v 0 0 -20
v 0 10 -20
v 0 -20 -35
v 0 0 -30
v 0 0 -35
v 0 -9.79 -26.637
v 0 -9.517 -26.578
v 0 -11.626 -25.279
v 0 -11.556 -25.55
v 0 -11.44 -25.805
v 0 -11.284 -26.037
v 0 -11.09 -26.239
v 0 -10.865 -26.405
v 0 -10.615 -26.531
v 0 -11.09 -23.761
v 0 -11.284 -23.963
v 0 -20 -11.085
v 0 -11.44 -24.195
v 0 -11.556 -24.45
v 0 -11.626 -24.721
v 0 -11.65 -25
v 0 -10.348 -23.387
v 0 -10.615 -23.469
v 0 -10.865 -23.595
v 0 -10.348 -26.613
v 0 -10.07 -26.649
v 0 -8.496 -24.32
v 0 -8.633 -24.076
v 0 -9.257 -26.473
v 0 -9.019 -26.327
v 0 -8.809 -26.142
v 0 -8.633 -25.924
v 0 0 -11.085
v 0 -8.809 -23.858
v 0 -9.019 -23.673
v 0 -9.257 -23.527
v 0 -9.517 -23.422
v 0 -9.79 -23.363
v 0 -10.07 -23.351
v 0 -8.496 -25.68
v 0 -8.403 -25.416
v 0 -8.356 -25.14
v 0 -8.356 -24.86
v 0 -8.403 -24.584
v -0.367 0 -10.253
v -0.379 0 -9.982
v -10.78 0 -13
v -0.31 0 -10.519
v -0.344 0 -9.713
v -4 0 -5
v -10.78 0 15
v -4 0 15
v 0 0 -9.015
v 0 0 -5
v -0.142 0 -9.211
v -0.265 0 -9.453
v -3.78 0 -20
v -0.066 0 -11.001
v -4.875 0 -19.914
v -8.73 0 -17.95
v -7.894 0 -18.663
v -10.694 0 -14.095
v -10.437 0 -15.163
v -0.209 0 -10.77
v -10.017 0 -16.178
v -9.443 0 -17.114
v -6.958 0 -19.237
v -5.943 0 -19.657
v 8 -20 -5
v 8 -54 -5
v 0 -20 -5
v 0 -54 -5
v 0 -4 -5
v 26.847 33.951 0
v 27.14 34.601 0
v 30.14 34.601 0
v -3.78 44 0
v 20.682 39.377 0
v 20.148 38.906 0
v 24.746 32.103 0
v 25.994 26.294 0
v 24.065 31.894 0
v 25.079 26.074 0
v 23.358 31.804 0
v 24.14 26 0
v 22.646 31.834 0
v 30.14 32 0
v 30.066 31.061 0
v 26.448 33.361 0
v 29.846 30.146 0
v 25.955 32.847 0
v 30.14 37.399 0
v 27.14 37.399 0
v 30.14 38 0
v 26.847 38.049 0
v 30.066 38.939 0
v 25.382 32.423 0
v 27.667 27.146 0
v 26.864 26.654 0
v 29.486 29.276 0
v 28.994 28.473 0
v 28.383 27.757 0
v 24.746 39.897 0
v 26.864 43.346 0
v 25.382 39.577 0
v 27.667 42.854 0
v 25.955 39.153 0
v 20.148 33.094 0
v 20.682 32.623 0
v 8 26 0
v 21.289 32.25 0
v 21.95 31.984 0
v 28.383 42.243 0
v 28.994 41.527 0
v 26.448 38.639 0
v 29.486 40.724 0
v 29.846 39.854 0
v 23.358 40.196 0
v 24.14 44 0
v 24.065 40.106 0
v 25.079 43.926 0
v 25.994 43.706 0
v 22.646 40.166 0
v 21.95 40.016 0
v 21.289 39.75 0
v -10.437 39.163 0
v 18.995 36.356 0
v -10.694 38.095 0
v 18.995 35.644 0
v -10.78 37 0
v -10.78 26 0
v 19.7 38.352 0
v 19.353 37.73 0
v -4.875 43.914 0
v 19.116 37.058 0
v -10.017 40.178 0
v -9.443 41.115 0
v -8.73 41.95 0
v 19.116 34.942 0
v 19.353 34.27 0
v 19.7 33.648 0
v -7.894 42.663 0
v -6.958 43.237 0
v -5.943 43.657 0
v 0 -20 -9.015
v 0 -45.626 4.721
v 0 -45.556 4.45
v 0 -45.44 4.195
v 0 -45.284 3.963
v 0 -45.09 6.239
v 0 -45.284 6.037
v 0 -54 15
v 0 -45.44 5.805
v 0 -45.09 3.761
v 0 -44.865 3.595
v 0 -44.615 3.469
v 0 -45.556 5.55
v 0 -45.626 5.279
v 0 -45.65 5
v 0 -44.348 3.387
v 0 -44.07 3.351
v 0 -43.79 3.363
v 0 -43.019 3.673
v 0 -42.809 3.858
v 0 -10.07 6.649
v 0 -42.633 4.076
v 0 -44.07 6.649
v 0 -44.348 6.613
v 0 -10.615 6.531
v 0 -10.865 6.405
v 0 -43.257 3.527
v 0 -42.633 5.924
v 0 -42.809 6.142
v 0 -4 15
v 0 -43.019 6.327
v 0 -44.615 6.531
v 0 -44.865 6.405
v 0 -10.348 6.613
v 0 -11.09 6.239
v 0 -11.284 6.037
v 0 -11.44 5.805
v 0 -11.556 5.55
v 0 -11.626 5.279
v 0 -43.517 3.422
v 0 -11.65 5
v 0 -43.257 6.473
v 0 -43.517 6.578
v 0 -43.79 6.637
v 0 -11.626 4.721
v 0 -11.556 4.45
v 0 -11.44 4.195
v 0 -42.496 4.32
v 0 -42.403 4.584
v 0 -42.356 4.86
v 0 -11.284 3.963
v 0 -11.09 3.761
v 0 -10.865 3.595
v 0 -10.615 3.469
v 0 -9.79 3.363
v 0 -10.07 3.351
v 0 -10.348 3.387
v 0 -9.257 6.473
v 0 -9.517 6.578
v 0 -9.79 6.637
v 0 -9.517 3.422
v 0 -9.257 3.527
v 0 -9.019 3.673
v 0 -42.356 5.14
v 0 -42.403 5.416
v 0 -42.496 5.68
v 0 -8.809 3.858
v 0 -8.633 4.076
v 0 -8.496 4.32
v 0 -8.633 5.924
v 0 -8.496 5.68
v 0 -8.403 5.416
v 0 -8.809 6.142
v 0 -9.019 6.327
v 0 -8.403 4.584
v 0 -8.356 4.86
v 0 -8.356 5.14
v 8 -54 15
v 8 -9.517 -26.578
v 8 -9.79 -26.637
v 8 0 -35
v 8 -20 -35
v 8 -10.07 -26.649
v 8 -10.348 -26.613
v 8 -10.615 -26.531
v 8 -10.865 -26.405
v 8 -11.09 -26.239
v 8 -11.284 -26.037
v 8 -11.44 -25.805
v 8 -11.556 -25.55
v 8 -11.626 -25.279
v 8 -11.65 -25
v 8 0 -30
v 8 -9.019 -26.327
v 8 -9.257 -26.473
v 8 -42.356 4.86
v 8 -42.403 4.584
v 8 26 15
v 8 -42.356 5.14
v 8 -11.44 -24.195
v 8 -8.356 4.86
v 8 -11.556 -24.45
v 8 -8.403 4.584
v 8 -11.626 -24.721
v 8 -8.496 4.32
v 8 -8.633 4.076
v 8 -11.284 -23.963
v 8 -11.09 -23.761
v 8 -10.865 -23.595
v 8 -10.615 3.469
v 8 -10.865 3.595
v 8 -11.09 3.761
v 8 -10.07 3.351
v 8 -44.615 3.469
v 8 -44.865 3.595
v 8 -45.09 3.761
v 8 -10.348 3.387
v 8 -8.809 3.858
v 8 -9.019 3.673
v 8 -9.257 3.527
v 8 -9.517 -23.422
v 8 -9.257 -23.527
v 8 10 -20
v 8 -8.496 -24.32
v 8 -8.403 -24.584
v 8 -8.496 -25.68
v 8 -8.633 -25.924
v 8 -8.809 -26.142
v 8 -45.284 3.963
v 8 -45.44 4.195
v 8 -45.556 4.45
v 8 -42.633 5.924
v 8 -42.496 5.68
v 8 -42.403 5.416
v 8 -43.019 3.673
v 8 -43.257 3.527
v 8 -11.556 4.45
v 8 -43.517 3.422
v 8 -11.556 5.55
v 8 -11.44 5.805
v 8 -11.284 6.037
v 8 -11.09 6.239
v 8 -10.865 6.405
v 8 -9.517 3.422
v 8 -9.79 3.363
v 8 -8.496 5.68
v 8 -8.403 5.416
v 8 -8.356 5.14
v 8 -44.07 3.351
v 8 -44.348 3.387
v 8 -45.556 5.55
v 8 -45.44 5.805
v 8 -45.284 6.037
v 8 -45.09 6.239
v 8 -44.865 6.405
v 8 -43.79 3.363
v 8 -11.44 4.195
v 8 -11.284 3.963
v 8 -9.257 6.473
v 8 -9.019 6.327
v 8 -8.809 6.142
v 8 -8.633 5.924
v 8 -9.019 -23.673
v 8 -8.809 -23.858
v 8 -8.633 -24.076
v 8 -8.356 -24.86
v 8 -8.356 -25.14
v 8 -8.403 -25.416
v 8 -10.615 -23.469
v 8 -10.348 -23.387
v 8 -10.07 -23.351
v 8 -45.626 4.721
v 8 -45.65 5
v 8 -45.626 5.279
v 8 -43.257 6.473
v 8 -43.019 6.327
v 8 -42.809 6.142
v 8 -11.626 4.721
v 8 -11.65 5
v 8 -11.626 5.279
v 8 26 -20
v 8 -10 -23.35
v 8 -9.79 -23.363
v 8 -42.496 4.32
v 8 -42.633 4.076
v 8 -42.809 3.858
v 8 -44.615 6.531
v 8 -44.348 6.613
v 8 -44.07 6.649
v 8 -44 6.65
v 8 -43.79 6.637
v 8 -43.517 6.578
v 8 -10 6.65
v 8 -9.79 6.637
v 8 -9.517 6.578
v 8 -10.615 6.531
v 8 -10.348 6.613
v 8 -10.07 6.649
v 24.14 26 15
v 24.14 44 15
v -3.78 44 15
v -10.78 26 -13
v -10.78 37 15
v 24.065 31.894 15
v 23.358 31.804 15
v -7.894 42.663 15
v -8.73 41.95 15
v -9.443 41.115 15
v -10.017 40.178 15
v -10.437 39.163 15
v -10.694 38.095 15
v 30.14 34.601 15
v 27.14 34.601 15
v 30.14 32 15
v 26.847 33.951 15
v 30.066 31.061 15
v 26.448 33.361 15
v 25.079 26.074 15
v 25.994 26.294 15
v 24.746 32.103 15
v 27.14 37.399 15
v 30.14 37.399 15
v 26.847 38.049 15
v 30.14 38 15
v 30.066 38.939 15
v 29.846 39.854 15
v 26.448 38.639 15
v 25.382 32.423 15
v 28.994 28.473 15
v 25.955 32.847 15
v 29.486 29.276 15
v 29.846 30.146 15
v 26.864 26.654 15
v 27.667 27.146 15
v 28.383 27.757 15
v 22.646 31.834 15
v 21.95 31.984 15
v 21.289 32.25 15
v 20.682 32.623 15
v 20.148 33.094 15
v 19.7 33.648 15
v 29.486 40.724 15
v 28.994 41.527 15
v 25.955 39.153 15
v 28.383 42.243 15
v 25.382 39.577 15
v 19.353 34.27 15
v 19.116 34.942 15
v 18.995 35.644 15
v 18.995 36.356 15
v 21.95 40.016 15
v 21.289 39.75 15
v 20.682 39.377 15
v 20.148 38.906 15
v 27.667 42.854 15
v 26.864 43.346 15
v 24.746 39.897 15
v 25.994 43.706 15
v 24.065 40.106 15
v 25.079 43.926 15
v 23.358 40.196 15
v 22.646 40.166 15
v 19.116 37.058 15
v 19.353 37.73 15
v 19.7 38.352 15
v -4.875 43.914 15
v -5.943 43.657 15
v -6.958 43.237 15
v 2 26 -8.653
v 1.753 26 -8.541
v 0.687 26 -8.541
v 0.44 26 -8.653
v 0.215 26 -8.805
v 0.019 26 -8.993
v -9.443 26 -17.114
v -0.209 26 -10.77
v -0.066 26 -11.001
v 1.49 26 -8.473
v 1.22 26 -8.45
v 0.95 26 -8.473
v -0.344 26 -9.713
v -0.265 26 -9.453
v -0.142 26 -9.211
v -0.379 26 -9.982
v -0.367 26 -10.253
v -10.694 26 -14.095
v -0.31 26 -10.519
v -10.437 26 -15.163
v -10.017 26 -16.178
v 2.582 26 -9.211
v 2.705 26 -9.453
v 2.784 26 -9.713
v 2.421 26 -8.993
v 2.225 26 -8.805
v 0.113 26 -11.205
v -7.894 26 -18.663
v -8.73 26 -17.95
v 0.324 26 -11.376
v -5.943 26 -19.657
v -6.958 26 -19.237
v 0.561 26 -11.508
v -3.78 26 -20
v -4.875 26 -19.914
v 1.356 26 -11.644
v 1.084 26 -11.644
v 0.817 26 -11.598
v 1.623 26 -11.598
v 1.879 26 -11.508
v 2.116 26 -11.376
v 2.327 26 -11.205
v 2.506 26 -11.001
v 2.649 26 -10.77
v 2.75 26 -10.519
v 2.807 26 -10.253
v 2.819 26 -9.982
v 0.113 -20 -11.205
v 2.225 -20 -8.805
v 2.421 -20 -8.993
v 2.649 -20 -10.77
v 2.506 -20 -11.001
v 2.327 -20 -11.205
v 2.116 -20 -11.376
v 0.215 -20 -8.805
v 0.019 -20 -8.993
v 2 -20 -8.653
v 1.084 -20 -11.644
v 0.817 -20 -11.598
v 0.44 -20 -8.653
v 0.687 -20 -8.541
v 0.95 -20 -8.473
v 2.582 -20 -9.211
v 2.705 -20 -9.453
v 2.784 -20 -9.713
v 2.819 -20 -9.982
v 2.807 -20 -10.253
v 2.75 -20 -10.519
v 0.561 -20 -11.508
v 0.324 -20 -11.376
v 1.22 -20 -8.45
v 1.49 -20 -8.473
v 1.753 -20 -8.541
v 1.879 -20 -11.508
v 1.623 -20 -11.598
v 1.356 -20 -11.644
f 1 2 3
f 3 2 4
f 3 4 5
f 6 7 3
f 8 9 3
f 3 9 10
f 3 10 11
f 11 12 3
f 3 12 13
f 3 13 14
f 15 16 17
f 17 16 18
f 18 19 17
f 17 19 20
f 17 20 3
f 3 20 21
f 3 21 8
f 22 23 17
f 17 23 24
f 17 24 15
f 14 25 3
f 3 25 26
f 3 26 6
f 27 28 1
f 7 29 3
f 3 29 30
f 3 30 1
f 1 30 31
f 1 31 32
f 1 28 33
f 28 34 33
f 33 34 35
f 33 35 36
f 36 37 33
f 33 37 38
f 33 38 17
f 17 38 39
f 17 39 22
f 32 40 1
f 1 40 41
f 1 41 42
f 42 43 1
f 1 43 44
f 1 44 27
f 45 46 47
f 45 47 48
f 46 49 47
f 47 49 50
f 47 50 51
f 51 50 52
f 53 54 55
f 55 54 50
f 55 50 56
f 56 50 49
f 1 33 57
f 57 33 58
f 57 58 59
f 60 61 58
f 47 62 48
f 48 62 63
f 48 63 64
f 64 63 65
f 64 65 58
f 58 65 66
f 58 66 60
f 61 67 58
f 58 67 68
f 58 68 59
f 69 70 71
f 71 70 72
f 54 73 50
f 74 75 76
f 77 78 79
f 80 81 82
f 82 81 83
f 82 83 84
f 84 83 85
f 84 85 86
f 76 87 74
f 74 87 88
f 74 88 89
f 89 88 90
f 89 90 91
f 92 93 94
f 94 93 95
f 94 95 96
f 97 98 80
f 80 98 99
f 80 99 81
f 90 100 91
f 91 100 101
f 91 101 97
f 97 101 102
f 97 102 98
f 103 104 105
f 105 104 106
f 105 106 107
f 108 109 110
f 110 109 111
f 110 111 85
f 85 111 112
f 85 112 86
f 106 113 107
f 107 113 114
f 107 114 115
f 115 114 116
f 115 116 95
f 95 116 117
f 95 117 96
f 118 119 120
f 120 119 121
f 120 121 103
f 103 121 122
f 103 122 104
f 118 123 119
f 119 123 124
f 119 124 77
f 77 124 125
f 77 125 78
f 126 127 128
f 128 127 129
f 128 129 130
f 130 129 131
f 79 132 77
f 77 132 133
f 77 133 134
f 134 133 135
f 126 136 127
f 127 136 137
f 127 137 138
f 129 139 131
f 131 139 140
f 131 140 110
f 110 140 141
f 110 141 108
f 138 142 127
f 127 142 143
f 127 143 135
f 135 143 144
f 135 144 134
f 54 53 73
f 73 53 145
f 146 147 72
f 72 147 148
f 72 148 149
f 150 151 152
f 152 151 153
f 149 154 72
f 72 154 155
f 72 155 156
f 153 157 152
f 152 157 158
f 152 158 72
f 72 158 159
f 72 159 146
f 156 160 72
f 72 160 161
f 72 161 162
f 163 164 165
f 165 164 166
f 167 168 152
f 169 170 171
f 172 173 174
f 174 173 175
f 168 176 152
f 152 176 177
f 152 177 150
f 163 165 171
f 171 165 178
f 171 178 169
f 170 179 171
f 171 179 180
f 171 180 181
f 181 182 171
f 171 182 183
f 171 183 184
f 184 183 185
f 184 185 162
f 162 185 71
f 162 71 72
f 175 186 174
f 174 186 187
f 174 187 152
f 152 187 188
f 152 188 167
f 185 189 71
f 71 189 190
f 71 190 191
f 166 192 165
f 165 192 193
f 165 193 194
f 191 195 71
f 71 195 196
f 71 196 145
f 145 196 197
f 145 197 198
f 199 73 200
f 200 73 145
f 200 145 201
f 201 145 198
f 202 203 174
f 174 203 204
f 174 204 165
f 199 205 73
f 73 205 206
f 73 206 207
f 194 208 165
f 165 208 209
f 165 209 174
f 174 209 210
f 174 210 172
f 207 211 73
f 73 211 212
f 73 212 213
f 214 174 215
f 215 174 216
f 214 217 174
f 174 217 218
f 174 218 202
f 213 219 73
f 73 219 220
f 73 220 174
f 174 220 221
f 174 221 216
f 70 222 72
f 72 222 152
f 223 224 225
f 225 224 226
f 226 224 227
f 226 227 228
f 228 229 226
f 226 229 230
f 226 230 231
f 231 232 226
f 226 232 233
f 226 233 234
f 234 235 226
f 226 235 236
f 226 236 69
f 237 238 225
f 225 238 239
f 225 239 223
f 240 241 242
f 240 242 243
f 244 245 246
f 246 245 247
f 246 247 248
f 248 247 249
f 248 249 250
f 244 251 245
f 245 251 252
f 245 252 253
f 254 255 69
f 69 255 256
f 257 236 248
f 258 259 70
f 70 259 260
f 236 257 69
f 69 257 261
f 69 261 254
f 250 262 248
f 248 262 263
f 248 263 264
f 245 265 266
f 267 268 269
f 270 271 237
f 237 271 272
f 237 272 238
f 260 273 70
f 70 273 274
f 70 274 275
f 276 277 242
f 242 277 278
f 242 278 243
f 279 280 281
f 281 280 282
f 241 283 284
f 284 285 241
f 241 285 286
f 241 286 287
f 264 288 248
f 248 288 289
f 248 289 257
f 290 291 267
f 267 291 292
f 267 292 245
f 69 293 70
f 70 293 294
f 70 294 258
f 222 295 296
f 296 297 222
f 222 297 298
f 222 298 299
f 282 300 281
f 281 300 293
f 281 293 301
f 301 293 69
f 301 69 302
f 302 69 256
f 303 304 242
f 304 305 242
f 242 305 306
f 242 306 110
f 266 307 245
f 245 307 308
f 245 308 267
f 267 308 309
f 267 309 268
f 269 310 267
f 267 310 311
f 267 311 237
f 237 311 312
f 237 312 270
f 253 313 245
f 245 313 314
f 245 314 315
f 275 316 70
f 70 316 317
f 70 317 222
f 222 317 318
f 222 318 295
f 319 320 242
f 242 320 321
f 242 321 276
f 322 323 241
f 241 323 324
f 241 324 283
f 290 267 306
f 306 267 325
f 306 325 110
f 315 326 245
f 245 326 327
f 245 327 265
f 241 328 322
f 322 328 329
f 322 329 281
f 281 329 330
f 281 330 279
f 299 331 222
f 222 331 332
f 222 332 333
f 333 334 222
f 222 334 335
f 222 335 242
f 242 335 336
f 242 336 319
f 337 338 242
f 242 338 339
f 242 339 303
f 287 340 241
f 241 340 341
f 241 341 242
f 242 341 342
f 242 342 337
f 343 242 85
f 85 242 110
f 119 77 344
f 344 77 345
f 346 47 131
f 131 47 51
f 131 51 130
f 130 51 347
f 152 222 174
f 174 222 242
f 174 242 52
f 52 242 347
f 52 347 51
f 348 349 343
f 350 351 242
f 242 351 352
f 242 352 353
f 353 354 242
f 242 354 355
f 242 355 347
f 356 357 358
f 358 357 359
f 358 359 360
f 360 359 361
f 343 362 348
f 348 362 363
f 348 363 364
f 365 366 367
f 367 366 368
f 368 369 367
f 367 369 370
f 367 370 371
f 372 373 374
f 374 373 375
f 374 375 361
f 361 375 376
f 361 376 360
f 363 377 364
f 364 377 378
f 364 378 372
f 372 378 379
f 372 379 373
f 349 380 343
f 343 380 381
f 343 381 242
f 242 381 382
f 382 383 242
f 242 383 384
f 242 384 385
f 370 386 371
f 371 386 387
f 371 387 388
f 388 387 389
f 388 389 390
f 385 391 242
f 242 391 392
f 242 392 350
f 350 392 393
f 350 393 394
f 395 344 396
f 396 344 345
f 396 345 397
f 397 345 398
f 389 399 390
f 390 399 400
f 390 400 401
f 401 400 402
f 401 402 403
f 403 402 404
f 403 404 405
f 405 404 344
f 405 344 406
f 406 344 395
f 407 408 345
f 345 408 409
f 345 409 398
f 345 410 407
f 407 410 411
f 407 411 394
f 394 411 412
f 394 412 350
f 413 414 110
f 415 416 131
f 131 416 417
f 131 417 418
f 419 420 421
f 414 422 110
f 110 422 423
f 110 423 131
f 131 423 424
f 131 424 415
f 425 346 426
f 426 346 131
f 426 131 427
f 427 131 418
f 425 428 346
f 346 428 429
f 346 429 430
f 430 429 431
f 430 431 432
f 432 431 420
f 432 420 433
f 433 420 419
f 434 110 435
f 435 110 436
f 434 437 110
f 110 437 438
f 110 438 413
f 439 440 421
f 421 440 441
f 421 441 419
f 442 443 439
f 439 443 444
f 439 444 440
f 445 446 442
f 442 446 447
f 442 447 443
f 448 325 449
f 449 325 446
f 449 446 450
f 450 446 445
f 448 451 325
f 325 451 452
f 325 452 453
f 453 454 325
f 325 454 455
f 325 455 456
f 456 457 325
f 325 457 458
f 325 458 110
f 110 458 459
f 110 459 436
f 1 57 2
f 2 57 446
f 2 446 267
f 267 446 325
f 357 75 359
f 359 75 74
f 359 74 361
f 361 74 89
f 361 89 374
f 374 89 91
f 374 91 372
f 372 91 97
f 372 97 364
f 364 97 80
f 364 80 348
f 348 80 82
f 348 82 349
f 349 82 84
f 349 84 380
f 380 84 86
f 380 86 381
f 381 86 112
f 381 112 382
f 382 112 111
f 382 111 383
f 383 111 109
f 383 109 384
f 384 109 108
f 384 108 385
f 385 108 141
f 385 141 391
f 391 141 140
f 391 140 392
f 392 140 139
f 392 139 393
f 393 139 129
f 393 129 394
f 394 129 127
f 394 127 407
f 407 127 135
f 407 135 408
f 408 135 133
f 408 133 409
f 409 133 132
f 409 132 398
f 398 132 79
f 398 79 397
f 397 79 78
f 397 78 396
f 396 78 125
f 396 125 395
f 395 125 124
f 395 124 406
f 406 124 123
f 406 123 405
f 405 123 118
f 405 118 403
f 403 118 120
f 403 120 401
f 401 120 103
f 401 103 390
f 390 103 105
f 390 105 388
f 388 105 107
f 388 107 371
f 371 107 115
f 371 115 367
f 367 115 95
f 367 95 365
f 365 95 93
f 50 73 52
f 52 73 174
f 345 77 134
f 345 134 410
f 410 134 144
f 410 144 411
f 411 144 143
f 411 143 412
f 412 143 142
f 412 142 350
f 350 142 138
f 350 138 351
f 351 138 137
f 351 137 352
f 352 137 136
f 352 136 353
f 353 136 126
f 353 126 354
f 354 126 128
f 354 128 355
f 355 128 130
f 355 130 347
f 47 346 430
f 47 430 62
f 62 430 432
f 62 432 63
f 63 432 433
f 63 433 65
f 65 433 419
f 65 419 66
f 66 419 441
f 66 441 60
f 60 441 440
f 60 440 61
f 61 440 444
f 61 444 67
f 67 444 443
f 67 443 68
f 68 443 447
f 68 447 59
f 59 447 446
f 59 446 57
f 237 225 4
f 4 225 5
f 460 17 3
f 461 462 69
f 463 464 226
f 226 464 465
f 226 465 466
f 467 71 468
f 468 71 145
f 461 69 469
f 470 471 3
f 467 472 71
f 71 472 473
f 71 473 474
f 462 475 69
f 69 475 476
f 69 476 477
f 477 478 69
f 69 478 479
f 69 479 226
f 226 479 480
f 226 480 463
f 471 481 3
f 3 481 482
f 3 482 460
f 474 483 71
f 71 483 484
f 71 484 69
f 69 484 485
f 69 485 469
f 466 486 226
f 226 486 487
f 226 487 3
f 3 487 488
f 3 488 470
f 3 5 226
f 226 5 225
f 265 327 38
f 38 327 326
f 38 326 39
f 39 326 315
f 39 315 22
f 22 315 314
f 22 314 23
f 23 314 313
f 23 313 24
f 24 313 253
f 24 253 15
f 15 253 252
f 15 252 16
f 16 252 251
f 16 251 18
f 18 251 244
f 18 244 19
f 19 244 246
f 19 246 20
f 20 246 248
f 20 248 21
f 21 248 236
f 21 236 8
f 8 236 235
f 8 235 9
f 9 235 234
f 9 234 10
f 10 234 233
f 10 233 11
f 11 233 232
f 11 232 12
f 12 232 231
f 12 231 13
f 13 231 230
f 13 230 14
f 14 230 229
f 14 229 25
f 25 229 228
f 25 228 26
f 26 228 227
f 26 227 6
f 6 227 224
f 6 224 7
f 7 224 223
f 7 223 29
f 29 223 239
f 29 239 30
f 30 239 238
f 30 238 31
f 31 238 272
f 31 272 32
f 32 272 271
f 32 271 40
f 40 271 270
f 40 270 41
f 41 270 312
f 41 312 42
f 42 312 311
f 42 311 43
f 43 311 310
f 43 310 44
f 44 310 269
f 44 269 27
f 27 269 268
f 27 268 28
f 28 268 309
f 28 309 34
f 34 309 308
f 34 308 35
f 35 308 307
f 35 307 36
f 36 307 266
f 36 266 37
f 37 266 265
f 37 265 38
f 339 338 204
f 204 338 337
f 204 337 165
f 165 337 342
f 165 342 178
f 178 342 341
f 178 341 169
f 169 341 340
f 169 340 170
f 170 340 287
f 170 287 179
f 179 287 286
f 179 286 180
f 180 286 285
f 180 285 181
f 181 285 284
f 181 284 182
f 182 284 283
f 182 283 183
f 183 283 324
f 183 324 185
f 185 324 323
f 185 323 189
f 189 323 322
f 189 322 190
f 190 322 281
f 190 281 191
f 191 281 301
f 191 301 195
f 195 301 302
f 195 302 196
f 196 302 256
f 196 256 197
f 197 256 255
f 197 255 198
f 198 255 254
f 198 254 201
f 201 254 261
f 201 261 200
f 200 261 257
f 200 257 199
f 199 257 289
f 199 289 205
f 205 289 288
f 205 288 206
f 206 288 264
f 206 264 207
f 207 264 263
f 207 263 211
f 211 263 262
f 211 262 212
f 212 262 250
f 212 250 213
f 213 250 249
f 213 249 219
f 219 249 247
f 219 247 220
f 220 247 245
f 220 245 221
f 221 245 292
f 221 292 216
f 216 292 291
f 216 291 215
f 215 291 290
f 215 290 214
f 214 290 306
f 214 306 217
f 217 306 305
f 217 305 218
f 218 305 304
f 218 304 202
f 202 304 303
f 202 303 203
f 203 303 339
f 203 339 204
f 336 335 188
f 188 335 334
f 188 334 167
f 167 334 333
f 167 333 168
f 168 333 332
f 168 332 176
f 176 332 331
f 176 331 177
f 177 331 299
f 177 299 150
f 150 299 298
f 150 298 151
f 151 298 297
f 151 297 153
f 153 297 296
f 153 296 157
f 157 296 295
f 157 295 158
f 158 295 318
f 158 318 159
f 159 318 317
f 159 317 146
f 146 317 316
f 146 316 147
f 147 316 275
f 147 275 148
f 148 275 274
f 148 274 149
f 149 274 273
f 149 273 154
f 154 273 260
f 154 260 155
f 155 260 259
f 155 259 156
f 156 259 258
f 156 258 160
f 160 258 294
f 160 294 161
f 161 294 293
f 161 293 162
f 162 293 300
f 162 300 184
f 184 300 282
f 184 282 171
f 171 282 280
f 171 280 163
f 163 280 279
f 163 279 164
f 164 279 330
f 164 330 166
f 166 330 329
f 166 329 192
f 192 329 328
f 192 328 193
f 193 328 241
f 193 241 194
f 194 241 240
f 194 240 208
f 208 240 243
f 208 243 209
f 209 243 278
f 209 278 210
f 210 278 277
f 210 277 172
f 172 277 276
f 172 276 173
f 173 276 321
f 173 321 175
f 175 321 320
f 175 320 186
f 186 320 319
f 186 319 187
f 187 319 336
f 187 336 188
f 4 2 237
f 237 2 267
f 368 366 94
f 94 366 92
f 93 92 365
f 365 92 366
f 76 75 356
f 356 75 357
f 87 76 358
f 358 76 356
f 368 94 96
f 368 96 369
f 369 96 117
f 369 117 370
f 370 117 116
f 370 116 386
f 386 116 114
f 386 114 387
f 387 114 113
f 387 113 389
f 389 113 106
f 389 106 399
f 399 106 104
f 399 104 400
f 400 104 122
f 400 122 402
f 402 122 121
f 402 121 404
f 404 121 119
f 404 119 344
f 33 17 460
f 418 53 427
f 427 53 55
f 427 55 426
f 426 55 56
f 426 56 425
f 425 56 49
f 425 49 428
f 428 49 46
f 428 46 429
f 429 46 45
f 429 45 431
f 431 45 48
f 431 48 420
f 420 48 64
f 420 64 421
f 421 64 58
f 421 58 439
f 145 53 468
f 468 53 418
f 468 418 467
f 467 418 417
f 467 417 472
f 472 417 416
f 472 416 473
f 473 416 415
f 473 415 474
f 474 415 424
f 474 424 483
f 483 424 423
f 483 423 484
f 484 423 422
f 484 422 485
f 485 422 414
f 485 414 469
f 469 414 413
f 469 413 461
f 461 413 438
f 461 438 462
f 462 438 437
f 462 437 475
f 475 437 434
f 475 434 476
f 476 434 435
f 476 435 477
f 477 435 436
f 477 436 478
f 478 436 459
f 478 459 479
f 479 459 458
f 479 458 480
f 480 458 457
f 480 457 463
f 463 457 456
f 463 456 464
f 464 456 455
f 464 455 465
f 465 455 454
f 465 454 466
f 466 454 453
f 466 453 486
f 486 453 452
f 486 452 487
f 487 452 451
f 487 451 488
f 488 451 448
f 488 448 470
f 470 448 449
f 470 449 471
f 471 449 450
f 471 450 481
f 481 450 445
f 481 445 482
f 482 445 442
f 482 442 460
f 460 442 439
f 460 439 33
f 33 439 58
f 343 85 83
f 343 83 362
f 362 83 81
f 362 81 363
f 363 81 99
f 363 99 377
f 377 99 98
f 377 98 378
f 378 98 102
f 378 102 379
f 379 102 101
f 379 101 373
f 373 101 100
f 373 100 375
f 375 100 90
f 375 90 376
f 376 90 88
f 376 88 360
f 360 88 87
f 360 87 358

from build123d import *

# Parameters (mm, degrees)
EXTRUDE_1_DEPTH     = 15
SKETCH_4_W          = 18.78
SKETCH_4_H          = 26
EXTRUDE_4_DEPTH     = 20
SKETCH_5_W          = 8
SKETCH_5_H          = 54
EXTRUDE_5_DEPTH     = 5
SKETCH_6_R          = 4.2
CUT_EXTRUDE_1_DEPTH = 15
CHAMFER_1_SIZE      = 4
FILLET_3_R          = 7
FILLET_4_R          = 7
SKETCH_9_W          = 8
SKETCH_9_H          = 20
EXTRUDE_6_DEPTH     = 30
SKETCH_10_R         = 1.65
CUT_EXTRUDE_4_DEPTH = 30
CHAMFER_2_SIZE      = 10
SKETCH_11_W         = 3
SKETCH_11_H         = 6.600571545
SKETCH_11_H_2       = 8.600571545
EXTRUDE_7_DEPTH     = 15
FILLET_5_R          = 6
SKETCH_8_R          = 1.6
CUT_EXTRUDE_3_DEPTH = 93
FILLET_6_R          = 6


with BuildPart() as part:
    # 草图1 → 凸台-拉伸1 (new body)
    with BuildSketch(Plane.XY):
        Polygon((8, 26), (27.14, 26), (27.14, 44), (-10.78, 44), (-10.78, 0), (0, 0), (0, -54), (8, -54), align=None)
    extrude(amount=EXTRUDE_1_DEPTH)

    # 草图4 → 凸台-拉伸4 (add)
    with BuildSketch(Plane(origin=(0, 0, 0), x_dir=(-1, 0, 0), z_dir=(0, 0, -1))):
        with Locations((1.39, 13)):
            Rectangle(SKETCH_4_W, SKETCH_4_H)
    extrude(amount=EXTRUDE_4_DEPTH)

    # 草图5 → 凸台-拉伸5 (add)
    with BuildSketch(Plane(origin=(0, 0, 0), x_dir=(-1, 0, 0), z_dir=(0, 0, -1))):
        with Locations((-4, -27)):
            Rectangle(SKETCH_5_W, SKETCH_5_H)
    extrude(amount=EXTRUDE_5_DEPTH)

    # 草图6 → 切除-拉伸1 (cut)
    with BuildSketch(Plane(origin=(0, 0, 0), x_dir=(-1, 0, 0), z_dir=(0, 0, -1))):
        with Locations((-23.18, 36)):
            Circle(SKETCH_6_R)
    extrude(amount=-CUT_EXTRUDE_1_DEPTH, mode=Mode.SUBTRACT)

    # 倒角1
    chamfer_1_edges = [part.edges().sort_by_distance(p)[0] for p in [
        (0, 0, 5),
    ]]
    chamfer(chamfer_1_edges, length=CHAMFER_1_SIZE)

    # 圆角3
    fillet_3_edges = [part.edges().sort_by_distance(p)[0] for p in [
        (-10.78, 44, 7.5),
    ]]
    fillet(fillet_3_edges, radius=FILLET_3_R)

    # 圆角4
    fillet_4_edges = [part.edges().sort_by_distance(p)[0] for p in [
        (-10.78, 13, -20),
    ]]
    fillet(fillet_4_edges, radius=FILLET_4_R)

    # 草图9 → 凸台-拉伸6 (add)
    with BuildSketch(Plane(origin=(0, 0, -5), x_dir=(-1, 0, 0), z_dir=(0, 0, -1))):
        with Locations((-4, -10)):
            Rectangle(SKETCH_9_W, SKETCH_9_H)
    extrude(amount=EXTRUDE_6_DEPTH)

    # 草图10 → 切除-拉伸4 (cut)
    with BuildSketch(Plane.ZY):
        with Locations((-25, -10)):
            Circle(SKETCH_10_R)
        with Locations((5, -10)):
            Circle(SKETCH_10_R)
        with Locations((5, -44)):
            Circle(SKETCH_10_R)
    extrude(amount=-CUT_EXTRUDE_4_DEPTH, mode=Mode.SUBTRACT)

    # 倒角2
    chamfer_2_edges = [part.edges().sort_by_distance(p)[0] for p in [
        (4, 0, -20),
    ]]
    chamfer(chamfer_2_edges, length=CHAMFER_2_SIZE)

    # 草图11 → 凸台-拉伸7 (add)
    with BuildSketch(Plane.XY.offset(15)):
        with Locations((28.64, 40.699714227)):
            Rectangle(SKETCH_11_W, SKETCH_11_H)
        with Locations((28.64, 30.300285773)):
            Rectangle(SKETCH_11_W, SKETCH_11_H_2)
    extrude(amount=-EXTRUDE_7_DEPTH)

    # 圆角5
    fillet_5_edges = [part.edges().sort_by_distance(p)[0] for p in [
        (30.14, 44, 7.5),
    ]]
    fillet(fillet_5_edges, radius=FILLET_5_R)

    # 草图8 → 切除-拉伸3 (cut)
    with BuildSketch(Plane(origin=(0, 26, 0), x_dir=(1, 0, 0), z_dir=(0, 1, 0))):
        with Locations((1.22, 10.05)):
            Circle(SKETCH_8_R)
    extrude(amount=-CUT_EXTRUDE_3_DEPTH, mode=Mode.SUBTRACT)

    # 圆角6
    fillet_6_edges = [part.edges().sort_by_distance(p)[0] for p in [
        (30.14, 26, 7.5),
    ]]
    fillet(fillet_6_edges, radius=FILLET_6_R)


solid = part.part
